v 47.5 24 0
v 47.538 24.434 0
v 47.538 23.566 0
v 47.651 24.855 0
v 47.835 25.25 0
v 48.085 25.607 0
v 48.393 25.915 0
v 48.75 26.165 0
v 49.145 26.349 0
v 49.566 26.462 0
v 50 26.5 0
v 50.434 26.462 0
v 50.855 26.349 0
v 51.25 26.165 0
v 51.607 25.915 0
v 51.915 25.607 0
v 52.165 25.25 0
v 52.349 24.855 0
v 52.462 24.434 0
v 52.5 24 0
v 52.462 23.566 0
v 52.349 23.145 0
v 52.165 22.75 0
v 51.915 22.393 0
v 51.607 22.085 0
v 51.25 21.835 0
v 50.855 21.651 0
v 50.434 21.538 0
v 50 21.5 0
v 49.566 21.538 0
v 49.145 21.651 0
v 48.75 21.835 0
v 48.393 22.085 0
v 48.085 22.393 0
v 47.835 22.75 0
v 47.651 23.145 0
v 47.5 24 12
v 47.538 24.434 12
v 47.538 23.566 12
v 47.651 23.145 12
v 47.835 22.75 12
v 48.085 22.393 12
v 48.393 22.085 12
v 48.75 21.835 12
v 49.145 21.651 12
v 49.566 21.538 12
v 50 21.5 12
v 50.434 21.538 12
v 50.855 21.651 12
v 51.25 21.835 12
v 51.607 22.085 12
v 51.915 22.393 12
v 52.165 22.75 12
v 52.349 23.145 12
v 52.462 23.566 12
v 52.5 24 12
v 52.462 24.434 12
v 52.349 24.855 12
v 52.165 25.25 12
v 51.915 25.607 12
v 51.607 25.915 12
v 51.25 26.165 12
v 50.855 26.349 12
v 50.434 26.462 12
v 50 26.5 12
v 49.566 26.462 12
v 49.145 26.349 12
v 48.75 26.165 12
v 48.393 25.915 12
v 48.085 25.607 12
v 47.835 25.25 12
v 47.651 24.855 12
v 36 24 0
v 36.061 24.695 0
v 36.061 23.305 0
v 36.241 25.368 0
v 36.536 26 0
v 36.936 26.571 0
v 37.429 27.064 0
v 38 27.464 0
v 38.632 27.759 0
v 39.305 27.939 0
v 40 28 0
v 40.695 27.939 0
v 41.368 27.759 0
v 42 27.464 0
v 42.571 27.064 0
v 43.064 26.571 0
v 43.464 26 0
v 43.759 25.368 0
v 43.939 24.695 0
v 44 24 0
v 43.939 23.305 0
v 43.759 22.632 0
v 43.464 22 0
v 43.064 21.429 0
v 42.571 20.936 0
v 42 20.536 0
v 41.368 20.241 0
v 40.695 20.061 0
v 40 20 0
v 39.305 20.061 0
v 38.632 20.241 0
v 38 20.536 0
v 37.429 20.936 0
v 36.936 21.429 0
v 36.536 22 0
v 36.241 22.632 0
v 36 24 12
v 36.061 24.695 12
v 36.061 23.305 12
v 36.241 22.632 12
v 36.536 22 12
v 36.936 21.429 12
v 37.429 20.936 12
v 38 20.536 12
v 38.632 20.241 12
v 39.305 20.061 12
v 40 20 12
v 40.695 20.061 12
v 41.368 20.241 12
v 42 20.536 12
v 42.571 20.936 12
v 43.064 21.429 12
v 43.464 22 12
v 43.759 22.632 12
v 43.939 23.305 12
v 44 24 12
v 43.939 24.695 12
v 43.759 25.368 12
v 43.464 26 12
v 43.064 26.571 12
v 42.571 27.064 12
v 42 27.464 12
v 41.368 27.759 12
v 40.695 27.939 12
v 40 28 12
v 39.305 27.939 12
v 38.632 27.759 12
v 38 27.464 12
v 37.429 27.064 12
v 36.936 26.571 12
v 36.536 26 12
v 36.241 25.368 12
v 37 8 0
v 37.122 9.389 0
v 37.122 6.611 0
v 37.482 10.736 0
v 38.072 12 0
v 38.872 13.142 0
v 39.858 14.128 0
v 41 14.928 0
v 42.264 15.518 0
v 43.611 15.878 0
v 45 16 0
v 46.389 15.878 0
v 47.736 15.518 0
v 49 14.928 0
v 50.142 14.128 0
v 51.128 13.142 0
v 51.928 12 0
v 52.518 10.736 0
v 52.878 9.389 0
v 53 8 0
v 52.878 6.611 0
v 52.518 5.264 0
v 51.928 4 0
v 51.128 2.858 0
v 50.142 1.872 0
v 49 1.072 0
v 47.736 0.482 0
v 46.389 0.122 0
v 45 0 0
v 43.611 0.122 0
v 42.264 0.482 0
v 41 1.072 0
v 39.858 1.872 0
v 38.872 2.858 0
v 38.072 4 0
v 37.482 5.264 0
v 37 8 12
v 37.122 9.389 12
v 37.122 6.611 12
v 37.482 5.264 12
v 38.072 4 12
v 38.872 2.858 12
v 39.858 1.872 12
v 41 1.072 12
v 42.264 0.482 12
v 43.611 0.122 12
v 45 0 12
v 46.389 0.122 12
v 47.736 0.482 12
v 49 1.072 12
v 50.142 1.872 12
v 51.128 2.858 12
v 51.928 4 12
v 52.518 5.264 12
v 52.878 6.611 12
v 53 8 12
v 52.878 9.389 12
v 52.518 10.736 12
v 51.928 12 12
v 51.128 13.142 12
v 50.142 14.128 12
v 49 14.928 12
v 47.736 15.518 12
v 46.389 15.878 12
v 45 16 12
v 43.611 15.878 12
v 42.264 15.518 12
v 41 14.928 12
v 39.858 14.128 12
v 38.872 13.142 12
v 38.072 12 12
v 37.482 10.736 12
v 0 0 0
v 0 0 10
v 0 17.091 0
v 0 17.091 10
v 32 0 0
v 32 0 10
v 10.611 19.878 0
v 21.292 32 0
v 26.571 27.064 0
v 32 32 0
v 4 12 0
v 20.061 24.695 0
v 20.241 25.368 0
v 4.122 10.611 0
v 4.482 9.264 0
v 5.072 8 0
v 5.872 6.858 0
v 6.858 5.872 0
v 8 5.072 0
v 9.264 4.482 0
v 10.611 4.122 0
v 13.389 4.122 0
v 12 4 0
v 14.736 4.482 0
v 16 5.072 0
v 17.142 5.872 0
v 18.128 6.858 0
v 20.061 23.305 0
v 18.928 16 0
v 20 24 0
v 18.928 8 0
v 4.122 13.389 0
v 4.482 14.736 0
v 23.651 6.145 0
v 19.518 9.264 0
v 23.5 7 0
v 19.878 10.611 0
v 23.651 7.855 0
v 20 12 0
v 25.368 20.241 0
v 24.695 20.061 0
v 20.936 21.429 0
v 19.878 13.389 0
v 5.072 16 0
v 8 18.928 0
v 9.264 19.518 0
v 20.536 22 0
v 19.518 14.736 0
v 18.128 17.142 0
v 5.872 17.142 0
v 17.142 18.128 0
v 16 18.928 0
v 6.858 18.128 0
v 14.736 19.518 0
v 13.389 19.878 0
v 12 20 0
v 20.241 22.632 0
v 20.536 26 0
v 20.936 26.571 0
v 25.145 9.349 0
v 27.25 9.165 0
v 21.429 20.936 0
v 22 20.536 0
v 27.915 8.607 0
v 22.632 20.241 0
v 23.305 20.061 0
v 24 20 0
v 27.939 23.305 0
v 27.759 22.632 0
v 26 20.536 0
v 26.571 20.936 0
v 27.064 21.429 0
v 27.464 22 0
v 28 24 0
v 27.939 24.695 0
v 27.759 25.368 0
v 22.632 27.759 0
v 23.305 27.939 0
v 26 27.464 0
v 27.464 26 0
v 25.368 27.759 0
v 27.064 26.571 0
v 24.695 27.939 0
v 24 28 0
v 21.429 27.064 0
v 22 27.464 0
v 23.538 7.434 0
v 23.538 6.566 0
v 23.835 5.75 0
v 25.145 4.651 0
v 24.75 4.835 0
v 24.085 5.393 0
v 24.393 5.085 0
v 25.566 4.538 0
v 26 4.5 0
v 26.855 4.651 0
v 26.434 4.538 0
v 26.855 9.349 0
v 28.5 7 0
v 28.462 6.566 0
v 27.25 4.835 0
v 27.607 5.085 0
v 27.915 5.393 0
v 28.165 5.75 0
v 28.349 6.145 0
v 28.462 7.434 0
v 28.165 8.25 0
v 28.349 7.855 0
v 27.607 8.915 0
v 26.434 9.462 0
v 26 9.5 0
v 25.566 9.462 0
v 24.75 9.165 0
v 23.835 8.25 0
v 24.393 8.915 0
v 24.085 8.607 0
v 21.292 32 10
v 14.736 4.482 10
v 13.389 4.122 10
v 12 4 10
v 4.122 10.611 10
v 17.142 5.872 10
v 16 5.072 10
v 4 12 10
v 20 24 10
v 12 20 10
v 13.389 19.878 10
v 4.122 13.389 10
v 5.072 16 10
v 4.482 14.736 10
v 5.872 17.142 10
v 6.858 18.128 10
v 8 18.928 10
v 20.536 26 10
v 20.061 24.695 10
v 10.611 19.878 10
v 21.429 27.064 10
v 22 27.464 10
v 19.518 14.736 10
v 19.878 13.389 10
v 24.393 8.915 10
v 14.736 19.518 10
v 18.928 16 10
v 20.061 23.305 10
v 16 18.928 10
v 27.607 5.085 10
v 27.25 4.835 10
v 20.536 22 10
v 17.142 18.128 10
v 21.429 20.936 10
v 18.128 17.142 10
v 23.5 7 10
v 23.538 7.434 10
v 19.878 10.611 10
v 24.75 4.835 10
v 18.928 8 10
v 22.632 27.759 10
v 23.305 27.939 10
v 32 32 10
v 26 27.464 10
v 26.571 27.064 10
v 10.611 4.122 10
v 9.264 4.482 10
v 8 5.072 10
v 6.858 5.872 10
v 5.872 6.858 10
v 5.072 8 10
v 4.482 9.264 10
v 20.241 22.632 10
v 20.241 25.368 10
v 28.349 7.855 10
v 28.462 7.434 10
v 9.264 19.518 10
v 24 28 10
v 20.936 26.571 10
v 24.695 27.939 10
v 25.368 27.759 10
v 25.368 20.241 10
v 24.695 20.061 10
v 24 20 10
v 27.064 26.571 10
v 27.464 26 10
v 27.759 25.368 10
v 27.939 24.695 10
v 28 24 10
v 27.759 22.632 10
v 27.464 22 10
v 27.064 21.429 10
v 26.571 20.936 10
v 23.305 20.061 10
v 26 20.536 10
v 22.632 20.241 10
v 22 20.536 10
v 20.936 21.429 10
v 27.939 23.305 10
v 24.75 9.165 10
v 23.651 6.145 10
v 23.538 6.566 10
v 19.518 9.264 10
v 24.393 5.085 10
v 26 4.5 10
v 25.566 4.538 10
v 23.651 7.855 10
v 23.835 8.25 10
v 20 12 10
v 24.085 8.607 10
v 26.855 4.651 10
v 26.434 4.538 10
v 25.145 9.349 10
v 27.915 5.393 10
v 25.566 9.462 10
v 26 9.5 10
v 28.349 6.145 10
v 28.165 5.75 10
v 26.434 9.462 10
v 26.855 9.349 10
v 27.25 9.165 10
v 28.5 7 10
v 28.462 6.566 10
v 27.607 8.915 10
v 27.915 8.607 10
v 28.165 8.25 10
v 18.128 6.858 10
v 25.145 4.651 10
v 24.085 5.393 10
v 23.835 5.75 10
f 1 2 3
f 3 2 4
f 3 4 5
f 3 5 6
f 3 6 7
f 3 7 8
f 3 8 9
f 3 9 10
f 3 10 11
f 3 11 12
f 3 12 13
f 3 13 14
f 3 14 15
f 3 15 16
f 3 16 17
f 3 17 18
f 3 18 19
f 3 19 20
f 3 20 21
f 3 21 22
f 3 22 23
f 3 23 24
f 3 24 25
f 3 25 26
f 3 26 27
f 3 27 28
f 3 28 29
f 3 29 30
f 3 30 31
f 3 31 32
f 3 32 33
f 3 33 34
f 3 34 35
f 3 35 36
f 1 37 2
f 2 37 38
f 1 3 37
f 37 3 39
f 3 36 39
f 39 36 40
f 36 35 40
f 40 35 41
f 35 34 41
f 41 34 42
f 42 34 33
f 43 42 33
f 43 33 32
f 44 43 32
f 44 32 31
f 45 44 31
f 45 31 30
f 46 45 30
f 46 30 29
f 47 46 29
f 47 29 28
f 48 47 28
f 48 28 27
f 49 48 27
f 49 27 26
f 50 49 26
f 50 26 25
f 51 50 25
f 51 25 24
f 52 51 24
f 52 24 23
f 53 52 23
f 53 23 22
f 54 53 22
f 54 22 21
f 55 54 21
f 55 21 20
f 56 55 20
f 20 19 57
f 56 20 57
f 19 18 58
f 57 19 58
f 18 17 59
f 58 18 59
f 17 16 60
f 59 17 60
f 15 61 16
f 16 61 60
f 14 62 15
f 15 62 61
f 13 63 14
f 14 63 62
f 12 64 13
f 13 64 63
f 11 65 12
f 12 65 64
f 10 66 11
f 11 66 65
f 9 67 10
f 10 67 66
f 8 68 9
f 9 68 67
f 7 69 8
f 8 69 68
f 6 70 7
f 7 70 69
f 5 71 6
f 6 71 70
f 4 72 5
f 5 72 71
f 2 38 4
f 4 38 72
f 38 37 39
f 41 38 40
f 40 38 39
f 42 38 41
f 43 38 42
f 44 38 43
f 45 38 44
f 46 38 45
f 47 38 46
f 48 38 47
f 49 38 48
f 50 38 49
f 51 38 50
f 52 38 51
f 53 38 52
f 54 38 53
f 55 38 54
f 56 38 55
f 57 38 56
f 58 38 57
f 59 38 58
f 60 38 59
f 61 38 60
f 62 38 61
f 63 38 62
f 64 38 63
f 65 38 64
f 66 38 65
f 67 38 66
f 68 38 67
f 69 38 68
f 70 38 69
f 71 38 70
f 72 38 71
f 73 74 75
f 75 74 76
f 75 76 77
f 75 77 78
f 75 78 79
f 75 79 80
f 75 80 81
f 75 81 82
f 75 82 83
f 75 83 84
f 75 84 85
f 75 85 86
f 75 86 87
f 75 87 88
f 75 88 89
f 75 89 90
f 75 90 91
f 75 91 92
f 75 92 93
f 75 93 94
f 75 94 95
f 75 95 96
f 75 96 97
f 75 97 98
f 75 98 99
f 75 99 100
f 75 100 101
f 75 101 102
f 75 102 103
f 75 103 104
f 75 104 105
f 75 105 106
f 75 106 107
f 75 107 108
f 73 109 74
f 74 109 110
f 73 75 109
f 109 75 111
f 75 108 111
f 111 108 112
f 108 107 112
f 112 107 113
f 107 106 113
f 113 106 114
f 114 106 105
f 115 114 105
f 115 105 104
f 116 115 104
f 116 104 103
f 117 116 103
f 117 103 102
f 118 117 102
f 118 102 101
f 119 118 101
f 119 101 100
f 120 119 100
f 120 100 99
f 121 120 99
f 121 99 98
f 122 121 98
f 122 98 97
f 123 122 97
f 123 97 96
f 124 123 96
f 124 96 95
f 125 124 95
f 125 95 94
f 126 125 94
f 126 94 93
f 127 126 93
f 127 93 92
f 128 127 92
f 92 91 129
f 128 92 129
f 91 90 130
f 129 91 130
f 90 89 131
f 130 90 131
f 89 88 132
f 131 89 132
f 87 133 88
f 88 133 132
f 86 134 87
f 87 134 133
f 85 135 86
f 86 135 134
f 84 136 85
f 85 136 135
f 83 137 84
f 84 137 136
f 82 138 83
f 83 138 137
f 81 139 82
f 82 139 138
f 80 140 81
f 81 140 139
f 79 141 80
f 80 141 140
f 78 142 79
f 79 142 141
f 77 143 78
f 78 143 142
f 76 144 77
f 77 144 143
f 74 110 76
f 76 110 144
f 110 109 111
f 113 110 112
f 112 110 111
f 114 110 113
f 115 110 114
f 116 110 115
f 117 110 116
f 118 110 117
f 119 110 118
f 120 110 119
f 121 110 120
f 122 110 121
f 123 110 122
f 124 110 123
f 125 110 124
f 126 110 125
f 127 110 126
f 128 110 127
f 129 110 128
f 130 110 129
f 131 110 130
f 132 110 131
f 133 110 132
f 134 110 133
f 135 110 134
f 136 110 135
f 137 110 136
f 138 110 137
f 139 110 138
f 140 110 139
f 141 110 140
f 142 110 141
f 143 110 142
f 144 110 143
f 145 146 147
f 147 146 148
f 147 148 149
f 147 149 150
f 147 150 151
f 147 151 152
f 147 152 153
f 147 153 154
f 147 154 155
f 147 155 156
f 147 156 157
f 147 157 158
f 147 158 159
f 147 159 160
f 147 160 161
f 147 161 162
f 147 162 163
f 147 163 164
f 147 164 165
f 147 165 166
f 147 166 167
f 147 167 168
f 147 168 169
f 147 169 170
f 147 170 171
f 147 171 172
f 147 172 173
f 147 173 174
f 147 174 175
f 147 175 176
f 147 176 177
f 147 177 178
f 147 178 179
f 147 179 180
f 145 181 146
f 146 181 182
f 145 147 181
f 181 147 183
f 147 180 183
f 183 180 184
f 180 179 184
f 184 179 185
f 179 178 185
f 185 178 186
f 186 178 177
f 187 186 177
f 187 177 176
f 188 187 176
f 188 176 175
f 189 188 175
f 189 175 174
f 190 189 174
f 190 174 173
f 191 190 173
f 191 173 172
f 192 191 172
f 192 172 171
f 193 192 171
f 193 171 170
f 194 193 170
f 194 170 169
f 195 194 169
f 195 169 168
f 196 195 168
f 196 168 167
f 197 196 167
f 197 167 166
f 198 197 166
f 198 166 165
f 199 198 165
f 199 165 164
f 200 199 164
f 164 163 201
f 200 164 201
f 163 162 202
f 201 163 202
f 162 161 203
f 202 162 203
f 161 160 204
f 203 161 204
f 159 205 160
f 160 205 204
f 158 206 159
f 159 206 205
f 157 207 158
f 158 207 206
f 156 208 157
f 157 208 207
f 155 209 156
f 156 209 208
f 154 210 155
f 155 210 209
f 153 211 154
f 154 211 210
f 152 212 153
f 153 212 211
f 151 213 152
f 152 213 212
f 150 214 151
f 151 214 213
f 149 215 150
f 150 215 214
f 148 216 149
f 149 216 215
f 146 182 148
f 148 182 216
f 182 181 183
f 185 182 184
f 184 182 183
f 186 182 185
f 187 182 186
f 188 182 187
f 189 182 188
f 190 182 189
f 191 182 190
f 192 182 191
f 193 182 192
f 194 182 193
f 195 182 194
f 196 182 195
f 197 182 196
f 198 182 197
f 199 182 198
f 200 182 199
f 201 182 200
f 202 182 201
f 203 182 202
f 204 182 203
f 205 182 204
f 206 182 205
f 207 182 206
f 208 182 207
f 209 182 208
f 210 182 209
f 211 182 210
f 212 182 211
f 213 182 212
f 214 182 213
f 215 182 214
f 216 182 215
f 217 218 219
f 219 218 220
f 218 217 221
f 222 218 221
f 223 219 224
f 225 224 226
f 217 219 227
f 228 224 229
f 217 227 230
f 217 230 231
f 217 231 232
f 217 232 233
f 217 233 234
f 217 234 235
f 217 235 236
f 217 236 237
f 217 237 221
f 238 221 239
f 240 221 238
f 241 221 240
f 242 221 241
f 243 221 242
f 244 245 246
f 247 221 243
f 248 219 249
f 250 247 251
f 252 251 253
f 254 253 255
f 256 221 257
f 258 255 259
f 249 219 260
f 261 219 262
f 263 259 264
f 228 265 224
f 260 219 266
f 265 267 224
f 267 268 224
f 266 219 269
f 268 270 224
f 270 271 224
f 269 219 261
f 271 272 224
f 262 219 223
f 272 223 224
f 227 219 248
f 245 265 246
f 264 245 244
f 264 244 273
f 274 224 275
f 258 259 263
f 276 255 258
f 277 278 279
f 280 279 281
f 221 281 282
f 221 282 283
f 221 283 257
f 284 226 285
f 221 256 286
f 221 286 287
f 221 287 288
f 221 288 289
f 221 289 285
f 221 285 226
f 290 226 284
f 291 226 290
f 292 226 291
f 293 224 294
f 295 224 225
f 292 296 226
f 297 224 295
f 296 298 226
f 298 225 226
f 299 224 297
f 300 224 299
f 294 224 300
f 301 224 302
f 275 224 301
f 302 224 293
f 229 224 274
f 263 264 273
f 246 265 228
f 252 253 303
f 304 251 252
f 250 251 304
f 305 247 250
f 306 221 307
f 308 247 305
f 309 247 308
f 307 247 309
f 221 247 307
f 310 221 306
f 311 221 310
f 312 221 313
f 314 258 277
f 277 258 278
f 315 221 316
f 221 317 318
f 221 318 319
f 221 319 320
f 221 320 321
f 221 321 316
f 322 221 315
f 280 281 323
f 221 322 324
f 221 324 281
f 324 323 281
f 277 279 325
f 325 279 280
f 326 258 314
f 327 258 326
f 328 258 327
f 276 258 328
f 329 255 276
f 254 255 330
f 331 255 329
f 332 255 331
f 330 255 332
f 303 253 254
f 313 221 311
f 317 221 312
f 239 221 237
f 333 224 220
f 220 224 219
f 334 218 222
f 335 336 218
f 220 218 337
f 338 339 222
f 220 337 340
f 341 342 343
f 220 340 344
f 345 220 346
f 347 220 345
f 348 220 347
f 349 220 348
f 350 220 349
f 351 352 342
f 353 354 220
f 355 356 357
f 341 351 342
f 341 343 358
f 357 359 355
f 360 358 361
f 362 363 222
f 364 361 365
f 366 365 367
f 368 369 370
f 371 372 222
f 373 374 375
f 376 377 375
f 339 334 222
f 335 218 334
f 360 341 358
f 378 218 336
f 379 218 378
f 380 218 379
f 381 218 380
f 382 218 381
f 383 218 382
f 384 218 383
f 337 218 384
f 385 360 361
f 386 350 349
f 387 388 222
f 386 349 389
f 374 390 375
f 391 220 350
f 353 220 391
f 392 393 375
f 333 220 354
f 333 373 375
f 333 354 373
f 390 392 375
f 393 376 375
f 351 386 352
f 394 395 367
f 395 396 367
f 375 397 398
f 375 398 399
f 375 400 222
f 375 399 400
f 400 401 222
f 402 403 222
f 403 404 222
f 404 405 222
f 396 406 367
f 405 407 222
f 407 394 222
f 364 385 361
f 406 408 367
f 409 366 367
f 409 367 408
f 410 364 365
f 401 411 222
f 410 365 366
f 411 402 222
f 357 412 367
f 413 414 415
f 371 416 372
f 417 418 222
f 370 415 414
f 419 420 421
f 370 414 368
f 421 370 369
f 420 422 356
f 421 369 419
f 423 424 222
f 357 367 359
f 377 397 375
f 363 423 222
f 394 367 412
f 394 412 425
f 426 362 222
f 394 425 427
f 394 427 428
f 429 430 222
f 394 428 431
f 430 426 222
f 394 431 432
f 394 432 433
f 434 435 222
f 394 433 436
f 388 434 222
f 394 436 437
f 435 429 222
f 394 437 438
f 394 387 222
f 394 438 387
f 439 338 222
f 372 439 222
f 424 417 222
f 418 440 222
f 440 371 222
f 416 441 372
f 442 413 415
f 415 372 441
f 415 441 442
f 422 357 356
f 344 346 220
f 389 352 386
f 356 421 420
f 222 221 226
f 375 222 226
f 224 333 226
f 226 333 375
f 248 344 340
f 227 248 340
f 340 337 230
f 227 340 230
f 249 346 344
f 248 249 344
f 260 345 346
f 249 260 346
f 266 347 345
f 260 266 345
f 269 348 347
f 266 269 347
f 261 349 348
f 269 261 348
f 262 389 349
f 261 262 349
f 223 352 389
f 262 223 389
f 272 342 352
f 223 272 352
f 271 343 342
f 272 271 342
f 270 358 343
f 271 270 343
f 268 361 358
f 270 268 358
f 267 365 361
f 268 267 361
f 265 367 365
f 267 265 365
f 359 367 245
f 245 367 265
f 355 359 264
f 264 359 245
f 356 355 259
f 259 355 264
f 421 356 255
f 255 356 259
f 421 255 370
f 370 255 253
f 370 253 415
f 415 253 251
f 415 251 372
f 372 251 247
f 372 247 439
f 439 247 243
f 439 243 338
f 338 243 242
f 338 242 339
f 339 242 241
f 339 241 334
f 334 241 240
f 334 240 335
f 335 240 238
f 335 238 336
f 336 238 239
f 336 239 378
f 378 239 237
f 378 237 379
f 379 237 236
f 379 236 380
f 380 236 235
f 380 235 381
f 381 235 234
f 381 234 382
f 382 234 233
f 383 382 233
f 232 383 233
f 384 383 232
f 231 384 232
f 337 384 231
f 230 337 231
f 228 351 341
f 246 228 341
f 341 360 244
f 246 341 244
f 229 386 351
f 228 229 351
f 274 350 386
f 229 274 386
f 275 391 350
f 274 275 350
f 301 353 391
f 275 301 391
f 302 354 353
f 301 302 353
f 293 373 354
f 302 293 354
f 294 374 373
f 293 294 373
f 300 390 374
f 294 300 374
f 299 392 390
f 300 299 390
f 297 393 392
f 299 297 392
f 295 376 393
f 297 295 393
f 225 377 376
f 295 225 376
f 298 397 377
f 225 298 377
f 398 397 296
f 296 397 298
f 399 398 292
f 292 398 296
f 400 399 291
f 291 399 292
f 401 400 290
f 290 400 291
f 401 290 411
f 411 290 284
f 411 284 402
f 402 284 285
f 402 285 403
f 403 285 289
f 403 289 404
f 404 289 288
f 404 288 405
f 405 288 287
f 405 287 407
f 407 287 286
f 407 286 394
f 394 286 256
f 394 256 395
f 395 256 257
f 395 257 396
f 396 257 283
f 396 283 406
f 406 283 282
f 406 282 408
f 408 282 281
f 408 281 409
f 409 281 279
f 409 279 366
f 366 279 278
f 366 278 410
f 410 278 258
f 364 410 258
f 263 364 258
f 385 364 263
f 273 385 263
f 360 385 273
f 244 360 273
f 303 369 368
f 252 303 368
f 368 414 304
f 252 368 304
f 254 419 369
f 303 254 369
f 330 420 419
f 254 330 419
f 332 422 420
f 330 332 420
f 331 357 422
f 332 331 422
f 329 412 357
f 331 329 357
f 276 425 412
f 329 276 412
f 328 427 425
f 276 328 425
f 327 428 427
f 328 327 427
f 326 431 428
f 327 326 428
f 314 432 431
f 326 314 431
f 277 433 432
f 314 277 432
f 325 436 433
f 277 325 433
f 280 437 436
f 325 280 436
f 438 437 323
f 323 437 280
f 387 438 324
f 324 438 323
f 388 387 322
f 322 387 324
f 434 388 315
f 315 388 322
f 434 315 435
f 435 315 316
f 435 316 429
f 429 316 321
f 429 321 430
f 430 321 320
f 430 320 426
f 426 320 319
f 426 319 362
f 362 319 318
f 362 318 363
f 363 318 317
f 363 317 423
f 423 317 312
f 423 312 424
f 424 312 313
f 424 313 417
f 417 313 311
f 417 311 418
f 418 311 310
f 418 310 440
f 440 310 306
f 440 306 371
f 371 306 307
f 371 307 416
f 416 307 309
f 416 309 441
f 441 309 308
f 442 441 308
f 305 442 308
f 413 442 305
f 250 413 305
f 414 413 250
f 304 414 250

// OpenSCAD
translate([50,24,0]) cylinder(r=2.5, h=12, $fn=36);
translate([40,24,0]) cylinder(r=4, h=12, $fn=36);
translate([45,8,0]) cylinder(r=8, h=12, $fn=36);

difference() {
	cube([32,32,10]);
	translate([26,7,-1]) cylinder(r=2.5, h=12, $fn=36);
	translate([24,24,-1]) cylinder(r=4, h=12, $fn=36);
	translate([12,12,-1]) cylinder(r=8, h=12, $fn=36);
	rotate([0,0,35]) translate([0,14,-1]) cube([50,20,12]);
}
